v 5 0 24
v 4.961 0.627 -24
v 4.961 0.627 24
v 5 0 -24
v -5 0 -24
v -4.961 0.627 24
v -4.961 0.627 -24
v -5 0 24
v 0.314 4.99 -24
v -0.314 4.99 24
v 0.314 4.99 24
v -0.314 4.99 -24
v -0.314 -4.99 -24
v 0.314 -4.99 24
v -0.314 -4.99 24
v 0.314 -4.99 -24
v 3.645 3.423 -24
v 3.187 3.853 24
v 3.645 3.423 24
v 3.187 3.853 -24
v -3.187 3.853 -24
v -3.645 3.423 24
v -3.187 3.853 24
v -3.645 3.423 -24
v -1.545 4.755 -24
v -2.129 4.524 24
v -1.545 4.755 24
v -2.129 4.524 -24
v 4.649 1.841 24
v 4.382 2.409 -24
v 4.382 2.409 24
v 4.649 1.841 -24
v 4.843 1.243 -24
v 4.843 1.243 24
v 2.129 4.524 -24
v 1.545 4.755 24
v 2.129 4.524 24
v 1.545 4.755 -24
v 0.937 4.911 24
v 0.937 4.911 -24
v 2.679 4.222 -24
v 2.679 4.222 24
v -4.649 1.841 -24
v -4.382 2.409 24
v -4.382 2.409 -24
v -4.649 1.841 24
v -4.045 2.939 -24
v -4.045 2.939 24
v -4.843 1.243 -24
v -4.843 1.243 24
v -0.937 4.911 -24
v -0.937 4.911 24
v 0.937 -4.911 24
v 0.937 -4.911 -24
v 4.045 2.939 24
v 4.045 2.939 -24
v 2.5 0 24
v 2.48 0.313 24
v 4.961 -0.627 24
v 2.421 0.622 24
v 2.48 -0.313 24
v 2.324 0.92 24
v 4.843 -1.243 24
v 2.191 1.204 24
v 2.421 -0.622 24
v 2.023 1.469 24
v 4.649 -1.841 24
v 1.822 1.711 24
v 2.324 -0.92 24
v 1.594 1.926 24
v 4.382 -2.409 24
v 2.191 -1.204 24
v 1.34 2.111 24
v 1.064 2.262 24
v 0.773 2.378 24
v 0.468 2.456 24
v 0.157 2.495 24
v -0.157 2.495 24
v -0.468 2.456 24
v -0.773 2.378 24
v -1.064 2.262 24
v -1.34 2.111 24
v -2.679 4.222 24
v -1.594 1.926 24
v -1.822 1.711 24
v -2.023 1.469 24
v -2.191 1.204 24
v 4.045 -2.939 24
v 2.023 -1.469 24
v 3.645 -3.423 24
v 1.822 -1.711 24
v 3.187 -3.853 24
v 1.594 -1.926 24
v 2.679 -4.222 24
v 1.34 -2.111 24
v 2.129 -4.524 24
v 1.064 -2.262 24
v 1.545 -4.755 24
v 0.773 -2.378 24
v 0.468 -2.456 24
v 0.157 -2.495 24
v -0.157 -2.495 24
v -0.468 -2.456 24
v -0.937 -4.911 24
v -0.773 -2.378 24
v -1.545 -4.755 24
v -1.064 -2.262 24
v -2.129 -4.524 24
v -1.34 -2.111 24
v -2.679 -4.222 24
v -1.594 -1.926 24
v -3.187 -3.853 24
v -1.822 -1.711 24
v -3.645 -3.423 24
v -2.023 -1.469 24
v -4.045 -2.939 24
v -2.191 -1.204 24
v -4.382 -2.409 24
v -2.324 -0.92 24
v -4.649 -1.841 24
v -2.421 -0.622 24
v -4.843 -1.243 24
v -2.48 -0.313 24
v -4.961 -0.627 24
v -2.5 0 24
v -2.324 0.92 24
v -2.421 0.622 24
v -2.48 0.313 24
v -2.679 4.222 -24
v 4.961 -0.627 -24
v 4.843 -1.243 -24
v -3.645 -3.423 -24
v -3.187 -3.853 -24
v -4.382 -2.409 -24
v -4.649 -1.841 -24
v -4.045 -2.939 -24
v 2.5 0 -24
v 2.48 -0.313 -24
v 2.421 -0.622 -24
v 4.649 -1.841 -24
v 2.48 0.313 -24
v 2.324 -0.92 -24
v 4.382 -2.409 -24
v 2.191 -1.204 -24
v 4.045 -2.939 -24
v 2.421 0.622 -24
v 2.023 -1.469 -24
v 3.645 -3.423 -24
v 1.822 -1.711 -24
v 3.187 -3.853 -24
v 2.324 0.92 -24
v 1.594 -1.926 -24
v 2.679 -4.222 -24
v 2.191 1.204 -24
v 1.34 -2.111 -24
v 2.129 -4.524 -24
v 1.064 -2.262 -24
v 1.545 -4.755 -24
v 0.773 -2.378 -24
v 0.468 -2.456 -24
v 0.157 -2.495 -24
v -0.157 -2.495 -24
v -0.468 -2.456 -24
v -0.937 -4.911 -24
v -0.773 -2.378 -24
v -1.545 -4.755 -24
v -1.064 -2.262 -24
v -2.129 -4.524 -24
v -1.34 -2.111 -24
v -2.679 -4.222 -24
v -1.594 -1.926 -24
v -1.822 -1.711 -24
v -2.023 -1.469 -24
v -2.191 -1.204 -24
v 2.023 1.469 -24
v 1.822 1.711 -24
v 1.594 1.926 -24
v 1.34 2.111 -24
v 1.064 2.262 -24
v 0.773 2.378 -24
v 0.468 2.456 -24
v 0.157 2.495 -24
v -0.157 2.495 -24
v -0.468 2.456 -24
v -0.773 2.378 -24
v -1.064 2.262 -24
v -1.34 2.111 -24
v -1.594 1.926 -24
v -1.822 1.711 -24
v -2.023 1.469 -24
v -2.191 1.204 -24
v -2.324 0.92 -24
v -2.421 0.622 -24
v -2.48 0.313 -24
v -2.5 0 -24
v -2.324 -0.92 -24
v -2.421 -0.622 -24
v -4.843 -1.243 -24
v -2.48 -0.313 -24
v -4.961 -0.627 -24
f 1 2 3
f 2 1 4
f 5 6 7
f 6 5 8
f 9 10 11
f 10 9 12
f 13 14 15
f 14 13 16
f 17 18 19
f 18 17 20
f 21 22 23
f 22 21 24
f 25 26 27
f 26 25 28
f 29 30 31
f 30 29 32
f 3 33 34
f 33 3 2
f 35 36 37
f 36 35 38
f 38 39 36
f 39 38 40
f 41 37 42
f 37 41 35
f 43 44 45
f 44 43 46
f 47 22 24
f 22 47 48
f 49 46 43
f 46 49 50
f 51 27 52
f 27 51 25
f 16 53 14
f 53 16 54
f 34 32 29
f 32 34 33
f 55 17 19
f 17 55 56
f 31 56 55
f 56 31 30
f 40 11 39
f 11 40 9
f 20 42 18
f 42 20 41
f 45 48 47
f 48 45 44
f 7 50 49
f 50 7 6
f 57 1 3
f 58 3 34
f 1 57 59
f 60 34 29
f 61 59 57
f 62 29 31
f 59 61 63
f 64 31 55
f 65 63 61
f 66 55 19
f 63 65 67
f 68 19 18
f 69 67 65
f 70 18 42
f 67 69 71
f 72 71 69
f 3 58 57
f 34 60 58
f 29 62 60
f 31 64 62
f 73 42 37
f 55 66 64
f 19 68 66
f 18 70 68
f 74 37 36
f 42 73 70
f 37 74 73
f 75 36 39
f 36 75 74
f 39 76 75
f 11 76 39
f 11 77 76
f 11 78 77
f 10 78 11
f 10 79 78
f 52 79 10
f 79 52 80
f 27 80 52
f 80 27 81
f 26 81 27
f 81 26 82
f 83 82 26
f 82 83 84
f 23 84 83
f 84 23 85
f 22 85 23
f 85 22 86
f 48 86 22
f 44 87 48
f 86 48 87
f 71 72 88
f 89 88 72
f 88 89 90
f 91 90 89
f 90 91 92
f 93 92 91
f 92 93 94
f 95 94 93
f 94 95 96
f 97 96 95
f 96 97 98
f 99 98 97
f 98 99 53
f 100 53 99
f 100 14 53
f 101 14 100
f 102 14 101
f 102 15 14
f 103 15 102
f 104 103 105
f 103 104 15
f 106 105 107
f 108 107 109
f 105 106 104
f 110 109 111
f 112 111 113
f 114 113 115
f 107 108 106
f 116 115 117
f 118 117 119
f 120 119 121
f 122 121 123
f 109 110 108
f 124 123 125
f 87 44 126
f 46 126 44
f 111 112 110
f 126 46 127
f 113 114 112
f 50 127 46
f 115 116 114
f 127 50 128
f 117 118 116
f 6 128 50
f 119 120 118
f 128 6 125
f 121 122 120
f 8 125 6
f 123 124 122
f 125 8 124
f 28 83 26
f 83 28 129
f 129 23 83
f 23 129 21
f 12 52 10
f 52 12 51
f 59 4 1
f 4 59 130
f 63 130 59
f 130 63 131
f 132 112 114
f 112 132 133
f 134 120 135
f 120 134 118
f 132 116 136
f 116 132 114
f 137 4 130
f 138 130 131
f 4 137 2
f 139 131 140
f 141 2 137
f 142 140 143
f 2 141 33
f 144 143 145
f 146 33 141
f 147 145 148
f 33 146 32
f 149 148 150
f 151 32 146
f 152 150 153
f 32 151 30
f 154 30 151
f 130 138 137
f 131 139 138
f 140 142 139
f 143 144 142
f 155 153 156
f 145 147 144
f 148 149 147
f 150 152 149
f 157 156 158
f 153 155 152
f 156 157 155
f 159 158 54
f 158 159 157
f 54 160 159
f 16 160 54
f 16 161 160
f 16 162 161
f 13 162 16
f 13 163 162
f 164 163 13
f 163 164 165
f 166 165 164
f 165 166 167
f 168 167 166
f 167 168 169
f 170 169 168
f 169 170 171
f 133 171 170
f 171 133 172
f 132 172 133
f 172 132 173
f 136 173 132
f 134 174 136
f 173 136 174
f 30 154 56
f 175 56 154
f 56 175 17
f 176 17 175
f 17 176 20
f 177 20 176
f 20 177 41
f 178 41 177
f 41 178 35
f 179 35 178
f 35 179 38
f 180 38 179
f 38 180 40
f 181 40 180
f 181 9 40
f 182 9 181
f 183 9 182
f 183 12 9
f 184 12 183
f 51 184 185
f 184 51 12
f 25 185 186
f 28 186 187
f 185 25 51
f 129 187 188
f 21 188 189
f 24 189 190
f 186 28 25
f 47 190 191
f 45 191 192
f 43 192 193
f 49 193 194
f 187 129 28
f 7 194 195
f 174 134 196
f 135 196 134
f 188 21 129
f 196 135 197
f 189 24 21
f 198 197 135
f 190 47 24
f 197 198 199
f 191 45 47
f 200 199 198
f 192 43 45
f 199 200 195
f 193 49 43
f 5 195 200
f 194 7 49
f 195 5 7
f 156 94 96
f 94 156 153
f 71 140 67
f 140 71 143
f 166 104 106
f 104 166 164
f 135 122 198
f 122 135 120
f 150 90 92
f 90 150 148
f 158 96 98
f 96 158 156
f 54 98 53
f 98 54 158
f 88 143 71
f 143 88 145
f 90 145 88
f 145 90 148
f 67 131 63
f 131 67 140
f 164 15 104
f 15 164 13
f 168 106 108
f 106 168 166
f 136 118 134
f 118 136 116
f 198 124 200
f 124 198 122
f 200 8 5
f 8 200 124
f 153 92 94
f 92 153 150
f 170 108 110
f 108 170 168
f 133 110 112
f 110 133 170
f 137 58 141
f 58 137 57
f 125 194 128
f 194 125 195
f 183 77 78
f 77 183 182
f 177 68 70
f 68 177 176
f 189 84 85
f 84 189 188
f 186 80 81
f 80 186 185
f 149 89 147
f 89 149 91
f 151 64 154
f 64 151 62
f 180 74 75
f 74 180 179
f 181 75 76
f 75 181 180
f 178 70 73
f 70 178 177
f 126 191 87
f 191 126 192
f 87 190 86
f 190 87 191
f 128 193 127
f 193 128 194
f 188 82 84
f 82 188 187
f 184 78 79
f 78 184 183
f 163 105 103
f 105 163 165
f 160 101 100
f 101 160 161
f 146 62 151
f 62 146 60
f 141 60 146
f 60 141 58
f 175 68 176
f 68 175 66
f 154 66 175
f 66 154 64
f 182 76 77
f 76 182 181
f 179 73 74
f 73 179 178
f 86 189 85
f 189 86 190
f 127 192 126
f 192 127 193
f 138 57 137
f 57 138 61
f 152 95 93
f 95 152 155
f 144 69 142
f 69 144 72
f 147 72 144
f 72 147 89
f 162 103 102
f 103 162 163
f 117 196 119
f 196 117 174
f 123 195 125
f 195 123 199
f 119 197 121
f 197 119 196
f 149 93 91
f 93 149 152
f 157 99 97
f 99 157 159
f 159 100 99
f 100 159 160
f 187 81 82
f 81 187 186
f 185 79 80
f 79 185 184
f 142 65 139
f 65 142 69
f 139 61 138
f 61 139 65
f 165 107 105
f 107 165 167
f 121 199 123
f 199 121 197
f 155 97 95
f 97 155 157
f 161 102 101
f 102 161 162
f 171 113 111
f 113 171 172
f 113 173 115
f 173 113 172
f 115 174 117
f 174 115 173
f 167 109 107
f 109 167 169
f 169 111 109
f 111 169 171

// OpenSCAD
$fn = 50;


difference() {
	union() {
		translate(v = [0, 0, -24.0000000000]) {
			cylinder(h = 48, r = 5.0000000000);
		}
	}
	union() {
		translate(v = [0, 0, -100.0000000000]) {
			cylinder(h = 200, r = 2.5000000000);
		}
	}
}
